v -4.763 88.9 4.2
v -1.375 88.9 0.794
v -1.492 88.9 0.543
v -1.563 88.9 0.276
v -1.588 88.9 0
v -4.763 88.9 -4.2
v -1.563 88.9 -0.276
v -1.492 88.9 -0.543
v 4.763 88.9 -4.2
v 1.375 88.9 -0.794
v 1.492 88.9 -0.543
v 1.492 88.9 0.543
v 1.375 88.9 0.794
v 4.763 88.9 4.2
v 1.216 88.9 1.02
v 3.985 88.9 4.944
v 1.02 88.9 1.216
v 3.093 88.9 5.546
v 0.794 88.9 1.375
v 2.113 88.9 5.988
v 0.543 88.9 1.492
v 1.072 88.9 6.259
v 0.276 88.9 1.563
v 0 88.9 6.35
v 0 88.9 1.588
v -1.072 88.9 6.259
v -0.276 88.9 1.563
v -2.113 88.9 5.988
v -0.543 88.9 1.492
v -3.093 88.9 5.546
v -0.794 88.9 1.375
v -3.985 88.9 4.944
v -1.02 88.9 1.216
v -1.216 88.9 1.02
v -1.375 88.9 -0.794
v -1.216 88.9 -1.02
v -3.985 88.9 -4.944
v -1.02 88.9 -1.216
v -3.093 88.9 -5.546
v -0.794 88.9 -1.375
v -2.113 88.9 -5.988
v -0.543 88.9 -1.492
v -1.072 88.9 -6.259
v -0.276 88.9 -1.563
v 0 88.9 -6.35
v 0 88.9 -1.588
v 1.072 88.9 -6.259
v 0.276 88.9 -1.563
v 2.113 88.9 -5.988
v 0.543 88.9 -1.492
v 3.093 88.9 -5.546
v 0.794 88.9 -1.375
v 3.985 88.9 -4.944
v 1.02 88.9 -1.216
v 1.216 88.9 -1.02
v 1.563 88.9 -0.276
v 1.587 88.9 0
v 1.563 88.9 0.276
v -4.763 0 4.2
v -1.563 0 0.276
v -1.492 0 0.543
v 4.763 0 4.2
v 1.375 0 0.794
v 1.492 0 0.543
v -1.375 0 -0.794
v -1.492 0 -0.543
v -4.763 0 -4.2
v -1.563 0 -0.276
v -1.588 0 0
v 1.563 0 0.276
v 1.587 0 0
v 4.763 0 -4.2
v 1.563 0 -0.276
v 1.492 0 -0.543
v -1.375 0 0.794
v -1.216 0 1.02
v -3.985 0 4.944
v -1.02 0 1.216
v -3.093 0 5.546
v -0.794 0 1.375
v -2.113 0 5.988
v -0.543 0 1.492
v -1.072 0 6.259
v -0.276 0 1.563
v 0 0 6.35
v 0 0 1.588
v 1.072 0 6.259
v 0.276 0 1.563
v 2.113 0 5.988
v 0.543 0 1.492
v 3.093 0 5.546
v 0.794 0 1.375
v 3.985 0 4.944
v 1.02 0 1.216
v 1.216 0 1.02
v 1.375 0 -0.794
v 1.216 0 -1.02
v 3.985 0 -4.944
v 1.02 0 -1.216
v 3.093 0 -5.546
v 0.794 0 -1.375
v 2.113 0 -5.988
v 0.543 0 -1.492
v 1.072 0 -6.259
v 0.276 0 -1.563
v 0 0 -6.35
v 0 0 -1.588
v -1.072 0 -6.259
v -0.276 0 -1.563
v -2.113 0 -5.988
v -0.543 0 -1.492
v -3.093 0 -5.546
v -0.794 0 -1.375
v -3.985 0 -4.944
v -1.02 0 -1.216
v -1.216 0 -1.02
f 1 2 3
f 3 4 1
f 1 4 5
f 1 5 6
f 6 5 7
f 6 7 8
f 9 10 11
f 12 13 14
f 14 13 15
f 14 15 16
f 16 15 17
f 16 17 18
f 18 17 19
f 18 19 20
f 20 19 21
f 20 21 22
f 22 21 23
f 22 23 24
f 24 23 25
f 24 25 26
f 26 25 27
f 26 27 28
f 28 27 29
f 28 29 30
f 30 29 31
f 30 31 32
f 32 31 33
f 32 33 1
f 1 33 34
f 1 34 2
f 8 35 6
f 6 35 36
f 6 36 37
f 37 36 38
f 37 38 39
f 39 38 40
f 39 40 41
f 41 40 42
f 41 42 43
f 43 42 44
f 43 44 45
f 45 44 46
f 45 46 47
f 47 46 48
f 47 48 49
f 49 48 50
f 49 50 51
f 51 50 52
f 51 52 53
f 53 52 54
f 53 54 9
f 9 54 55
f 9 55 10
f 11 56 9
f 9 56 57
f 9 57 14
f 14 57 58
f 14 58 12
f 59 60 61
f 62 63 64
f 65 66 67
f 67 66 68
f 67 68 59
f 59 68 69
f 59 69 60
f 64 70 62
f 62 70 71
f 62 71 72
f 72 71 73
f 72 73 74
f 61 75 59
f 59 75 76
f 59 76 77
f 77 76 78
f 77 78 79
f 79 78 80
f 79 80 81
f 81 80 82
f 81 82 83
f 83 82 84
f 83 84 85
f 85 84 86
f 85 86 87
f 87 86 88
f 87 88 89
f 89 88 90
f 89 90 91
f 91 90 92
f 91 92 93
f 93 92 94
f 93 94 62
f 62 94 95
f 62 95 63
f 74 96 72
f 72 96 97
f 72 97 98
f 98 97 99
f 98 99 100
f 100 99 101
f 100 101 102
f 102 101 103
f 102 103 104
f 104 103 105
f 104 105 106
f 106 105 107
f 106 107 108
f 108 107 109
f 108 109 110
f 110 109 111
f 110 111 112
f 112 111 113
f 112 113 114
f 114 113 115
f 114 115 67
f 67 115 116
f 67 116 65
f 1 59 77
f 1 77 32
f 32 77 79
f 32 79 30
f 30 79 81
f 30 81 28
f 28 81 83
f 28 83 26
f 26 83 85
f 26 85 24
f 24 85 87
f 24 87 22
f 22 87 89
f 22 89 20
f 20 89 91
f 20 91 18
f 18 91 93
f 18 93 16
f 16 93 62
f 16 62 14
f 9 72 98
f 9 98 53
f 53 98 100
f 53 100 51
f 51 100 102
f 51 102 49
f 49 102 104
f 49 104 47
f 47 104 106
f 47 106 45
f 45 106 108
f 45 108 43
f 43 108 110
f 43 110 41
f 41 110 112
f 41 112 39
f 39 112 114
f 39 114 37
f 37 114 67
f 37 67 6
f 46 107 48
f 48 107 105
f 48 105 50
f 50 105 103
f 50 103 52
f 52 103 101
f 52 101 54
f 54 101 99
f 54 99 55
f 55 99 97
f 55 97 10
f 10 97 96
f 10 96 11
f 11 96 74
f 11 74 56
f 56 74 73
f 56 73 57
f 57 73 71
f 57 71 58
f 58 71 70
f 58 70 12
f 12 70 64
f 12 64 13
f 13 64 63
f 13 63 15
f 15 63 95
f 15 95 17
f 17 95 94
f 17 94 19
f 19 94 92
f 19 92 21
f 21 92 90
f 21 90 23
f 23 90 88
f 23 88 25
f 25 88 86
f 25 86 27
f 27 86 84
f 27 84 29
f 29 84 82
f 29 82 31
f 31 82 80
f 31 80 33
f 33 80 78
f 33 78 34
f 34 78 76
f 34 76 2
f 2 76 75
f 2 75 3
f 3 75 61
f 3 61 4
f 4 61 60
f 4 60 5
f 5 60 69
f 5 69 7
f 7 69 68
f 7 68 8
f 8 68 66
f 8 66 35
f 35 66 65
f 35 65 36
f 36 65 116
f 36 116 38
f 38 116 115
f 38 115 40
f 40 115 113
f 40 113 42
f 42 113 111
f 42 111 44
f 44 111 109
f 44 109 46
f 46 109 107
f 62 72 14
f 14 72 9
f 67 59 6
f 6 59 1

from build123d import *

# Parameters (mm, degrees)
SKETCH1_R           = 6.35
SKETCH1_R_2         = 1.5875
BOSS_EXTRUDE1_DEPTH = 88.9
CUT_EXTRUDE1_DEPTH  = 89.9


with BuildPart() as part:
    # Sketch1 → Boss-Extrude1 (new body)
    with BuildSketch(Plane(origin=(0, 0, 0), x_dir=(1, 0, 0), z_dir=(0, 1, 0))):
        Circle(SKETCH1_R)
        Circle(SKETCH1_R_2, mode=Mode.SUBTRACT)
    extrude(amount=BOSS_EXTRUDE1_DEPTH)

    # Sketch2 → Cut-Extrude1 (cut, through all)
    with BuildSketch(Plane(origin=(0, 88.9, 0), x_dir=(1, 0, 0), z_dir=(0, 1, 0))):
        with BuildLine():
            ThreePointArc((-4.7625, 4.200130206), (-6.35, 0), (-4.7625, -4.200130206))
            Line((-4.7625, -4.200130206), (-4.7625, 4.200130206))
        make_face()
        with BuildLine():
            Line((4.7625, 4.200130206), (4.7625, -4.200130206))
            ThreePointArc((4.7625, -4.200130206), (5.939881102, -2.24506403), (6.35, 0))
            ThreePointArc((6.35, 0), (5.939881102, 2.24506403), (4.7625, 4.200130206))
        make_face()
    extrude(amount=-CUT_EXTRUDE1_DEPTH, mode=Mode.SUBTRACT)


solid = part.part
